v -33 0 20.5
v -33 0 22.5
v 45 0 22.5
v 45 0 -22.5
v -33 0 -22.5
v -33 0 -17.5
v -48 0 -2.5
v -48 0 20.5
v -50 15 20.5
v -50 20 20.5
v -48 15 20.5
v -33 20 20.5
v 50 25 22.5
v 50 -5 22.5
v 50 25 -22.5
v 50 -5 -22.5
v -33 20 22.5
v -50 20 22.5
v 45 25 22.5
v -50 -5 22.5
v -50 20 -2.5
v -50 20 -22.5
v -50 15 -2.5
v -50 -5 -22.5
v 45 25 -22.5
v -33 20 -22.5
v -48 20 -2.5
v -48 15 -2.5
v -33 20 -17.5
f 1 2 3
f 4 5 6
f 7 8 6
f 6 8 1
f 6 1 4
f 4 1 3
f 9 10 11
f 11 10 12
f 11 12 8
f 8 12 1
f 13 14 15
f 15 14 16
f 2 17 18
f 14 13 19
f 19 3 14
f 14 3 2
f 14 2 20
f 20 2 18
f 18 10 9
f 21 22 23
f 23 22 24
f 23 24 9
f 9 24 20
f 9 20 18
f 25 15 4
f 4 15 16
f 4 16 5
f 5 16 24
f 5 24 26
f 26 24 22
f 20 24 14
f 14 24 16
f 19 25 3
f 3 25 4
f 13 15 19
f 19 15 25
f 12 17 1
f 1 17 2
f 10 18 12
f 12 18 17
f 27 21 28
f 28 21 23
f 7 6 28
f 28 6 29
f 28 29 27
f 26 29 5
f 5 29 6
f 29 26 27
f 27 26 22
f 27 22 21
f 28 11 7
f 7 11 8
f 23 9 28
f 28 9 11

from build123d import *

# Parameters (mm, degrees)
SKETCH1_W           = 100
SKETCH1_H           = 45
BOSS_EXTRUDE1_DEPTH = 5
SKETCH1_4_W         = 5
SKETCH1_4_H         = 45
BOSS_EXTRUDE2_DEPTH = 25
SKETCH1_5_W         = 17
SKETCH1_5_H         = 2
BOSS_EXTRUDE3_DEPTH = 20
BOSS_EXTRUDE4_DEPTH = 20
SKETCH1_8_W         = 2
SKETCH1_8_H         = 23
BOSS_EXTRUDE5_DEPTH = 15


with BuildPart() as part:
    # Sketch1 → Boss-Extrude1 (new body)
    with BuildSketch(Plane(origin=(0, 0, 0), x_dir=(1, 0, 0), z_dir=(0, 1, 0))):
        Rectangle(SKETCH1_W, SKETCH1_H)
    extrude(amount=-BOSS_EXTRUDE1_DEPTH)

    # Sketch1<4> → Boss-Extrude2 (add)
    with BuildSketch(Plane(origin=(0, 0, 0), x_dir=(1, 0, 0), z_dir=(0, 1, 0))):
        with Locations((47.5, 0)):
            Rectangle(SKETCH1_4_W, SKETCH1_4_H)
    extrude(amount=BOSS_EXTRUDE2_DEPTH)

    # Sketch1<5> → Boss-Extrude3 (add)
    with BuildSketch(Plane(origin=(0, 0, 0), x_dir=(1, 0, 0), z_dir=(0, 1, 0))):
        with Locations((-41.5, -21.5)):
            Rectangle(SKETCH1_5_W, SKETCH1_5_H)
    extrude(amount=BOSS_EXTRUDE3_DEPTH)

    # Sketch1<6> → Boss-Extrude4 (add)
    with BuildSketch(Plane(origin=(0, 0, 0), x_dir=(1, 0, 0), z_dir=(0, 1, 0))):
        Polygon((-50, 2.5), (-48, 2.5), (-33, 17.5), (-33, 22.5), (-50, 22.5), align=None)
    extrude(amount=BOSS_EXTRUDE4_DEPTH)

    # Sketch1<8> → Boss-Extrude5 (add)
    with BuildSketch(Plane(origin=(0, 0, 0), x_dir=(1, 0, 0), z_dir=(0, 1, 0))):
        with Locations((-49, -9)):
            Rectangle(SKETCH1_8_W, SKETCH1_8_H)
    extrude(amount=BOSS_EXTRUDE5_DEPTH)


solid = part.part
